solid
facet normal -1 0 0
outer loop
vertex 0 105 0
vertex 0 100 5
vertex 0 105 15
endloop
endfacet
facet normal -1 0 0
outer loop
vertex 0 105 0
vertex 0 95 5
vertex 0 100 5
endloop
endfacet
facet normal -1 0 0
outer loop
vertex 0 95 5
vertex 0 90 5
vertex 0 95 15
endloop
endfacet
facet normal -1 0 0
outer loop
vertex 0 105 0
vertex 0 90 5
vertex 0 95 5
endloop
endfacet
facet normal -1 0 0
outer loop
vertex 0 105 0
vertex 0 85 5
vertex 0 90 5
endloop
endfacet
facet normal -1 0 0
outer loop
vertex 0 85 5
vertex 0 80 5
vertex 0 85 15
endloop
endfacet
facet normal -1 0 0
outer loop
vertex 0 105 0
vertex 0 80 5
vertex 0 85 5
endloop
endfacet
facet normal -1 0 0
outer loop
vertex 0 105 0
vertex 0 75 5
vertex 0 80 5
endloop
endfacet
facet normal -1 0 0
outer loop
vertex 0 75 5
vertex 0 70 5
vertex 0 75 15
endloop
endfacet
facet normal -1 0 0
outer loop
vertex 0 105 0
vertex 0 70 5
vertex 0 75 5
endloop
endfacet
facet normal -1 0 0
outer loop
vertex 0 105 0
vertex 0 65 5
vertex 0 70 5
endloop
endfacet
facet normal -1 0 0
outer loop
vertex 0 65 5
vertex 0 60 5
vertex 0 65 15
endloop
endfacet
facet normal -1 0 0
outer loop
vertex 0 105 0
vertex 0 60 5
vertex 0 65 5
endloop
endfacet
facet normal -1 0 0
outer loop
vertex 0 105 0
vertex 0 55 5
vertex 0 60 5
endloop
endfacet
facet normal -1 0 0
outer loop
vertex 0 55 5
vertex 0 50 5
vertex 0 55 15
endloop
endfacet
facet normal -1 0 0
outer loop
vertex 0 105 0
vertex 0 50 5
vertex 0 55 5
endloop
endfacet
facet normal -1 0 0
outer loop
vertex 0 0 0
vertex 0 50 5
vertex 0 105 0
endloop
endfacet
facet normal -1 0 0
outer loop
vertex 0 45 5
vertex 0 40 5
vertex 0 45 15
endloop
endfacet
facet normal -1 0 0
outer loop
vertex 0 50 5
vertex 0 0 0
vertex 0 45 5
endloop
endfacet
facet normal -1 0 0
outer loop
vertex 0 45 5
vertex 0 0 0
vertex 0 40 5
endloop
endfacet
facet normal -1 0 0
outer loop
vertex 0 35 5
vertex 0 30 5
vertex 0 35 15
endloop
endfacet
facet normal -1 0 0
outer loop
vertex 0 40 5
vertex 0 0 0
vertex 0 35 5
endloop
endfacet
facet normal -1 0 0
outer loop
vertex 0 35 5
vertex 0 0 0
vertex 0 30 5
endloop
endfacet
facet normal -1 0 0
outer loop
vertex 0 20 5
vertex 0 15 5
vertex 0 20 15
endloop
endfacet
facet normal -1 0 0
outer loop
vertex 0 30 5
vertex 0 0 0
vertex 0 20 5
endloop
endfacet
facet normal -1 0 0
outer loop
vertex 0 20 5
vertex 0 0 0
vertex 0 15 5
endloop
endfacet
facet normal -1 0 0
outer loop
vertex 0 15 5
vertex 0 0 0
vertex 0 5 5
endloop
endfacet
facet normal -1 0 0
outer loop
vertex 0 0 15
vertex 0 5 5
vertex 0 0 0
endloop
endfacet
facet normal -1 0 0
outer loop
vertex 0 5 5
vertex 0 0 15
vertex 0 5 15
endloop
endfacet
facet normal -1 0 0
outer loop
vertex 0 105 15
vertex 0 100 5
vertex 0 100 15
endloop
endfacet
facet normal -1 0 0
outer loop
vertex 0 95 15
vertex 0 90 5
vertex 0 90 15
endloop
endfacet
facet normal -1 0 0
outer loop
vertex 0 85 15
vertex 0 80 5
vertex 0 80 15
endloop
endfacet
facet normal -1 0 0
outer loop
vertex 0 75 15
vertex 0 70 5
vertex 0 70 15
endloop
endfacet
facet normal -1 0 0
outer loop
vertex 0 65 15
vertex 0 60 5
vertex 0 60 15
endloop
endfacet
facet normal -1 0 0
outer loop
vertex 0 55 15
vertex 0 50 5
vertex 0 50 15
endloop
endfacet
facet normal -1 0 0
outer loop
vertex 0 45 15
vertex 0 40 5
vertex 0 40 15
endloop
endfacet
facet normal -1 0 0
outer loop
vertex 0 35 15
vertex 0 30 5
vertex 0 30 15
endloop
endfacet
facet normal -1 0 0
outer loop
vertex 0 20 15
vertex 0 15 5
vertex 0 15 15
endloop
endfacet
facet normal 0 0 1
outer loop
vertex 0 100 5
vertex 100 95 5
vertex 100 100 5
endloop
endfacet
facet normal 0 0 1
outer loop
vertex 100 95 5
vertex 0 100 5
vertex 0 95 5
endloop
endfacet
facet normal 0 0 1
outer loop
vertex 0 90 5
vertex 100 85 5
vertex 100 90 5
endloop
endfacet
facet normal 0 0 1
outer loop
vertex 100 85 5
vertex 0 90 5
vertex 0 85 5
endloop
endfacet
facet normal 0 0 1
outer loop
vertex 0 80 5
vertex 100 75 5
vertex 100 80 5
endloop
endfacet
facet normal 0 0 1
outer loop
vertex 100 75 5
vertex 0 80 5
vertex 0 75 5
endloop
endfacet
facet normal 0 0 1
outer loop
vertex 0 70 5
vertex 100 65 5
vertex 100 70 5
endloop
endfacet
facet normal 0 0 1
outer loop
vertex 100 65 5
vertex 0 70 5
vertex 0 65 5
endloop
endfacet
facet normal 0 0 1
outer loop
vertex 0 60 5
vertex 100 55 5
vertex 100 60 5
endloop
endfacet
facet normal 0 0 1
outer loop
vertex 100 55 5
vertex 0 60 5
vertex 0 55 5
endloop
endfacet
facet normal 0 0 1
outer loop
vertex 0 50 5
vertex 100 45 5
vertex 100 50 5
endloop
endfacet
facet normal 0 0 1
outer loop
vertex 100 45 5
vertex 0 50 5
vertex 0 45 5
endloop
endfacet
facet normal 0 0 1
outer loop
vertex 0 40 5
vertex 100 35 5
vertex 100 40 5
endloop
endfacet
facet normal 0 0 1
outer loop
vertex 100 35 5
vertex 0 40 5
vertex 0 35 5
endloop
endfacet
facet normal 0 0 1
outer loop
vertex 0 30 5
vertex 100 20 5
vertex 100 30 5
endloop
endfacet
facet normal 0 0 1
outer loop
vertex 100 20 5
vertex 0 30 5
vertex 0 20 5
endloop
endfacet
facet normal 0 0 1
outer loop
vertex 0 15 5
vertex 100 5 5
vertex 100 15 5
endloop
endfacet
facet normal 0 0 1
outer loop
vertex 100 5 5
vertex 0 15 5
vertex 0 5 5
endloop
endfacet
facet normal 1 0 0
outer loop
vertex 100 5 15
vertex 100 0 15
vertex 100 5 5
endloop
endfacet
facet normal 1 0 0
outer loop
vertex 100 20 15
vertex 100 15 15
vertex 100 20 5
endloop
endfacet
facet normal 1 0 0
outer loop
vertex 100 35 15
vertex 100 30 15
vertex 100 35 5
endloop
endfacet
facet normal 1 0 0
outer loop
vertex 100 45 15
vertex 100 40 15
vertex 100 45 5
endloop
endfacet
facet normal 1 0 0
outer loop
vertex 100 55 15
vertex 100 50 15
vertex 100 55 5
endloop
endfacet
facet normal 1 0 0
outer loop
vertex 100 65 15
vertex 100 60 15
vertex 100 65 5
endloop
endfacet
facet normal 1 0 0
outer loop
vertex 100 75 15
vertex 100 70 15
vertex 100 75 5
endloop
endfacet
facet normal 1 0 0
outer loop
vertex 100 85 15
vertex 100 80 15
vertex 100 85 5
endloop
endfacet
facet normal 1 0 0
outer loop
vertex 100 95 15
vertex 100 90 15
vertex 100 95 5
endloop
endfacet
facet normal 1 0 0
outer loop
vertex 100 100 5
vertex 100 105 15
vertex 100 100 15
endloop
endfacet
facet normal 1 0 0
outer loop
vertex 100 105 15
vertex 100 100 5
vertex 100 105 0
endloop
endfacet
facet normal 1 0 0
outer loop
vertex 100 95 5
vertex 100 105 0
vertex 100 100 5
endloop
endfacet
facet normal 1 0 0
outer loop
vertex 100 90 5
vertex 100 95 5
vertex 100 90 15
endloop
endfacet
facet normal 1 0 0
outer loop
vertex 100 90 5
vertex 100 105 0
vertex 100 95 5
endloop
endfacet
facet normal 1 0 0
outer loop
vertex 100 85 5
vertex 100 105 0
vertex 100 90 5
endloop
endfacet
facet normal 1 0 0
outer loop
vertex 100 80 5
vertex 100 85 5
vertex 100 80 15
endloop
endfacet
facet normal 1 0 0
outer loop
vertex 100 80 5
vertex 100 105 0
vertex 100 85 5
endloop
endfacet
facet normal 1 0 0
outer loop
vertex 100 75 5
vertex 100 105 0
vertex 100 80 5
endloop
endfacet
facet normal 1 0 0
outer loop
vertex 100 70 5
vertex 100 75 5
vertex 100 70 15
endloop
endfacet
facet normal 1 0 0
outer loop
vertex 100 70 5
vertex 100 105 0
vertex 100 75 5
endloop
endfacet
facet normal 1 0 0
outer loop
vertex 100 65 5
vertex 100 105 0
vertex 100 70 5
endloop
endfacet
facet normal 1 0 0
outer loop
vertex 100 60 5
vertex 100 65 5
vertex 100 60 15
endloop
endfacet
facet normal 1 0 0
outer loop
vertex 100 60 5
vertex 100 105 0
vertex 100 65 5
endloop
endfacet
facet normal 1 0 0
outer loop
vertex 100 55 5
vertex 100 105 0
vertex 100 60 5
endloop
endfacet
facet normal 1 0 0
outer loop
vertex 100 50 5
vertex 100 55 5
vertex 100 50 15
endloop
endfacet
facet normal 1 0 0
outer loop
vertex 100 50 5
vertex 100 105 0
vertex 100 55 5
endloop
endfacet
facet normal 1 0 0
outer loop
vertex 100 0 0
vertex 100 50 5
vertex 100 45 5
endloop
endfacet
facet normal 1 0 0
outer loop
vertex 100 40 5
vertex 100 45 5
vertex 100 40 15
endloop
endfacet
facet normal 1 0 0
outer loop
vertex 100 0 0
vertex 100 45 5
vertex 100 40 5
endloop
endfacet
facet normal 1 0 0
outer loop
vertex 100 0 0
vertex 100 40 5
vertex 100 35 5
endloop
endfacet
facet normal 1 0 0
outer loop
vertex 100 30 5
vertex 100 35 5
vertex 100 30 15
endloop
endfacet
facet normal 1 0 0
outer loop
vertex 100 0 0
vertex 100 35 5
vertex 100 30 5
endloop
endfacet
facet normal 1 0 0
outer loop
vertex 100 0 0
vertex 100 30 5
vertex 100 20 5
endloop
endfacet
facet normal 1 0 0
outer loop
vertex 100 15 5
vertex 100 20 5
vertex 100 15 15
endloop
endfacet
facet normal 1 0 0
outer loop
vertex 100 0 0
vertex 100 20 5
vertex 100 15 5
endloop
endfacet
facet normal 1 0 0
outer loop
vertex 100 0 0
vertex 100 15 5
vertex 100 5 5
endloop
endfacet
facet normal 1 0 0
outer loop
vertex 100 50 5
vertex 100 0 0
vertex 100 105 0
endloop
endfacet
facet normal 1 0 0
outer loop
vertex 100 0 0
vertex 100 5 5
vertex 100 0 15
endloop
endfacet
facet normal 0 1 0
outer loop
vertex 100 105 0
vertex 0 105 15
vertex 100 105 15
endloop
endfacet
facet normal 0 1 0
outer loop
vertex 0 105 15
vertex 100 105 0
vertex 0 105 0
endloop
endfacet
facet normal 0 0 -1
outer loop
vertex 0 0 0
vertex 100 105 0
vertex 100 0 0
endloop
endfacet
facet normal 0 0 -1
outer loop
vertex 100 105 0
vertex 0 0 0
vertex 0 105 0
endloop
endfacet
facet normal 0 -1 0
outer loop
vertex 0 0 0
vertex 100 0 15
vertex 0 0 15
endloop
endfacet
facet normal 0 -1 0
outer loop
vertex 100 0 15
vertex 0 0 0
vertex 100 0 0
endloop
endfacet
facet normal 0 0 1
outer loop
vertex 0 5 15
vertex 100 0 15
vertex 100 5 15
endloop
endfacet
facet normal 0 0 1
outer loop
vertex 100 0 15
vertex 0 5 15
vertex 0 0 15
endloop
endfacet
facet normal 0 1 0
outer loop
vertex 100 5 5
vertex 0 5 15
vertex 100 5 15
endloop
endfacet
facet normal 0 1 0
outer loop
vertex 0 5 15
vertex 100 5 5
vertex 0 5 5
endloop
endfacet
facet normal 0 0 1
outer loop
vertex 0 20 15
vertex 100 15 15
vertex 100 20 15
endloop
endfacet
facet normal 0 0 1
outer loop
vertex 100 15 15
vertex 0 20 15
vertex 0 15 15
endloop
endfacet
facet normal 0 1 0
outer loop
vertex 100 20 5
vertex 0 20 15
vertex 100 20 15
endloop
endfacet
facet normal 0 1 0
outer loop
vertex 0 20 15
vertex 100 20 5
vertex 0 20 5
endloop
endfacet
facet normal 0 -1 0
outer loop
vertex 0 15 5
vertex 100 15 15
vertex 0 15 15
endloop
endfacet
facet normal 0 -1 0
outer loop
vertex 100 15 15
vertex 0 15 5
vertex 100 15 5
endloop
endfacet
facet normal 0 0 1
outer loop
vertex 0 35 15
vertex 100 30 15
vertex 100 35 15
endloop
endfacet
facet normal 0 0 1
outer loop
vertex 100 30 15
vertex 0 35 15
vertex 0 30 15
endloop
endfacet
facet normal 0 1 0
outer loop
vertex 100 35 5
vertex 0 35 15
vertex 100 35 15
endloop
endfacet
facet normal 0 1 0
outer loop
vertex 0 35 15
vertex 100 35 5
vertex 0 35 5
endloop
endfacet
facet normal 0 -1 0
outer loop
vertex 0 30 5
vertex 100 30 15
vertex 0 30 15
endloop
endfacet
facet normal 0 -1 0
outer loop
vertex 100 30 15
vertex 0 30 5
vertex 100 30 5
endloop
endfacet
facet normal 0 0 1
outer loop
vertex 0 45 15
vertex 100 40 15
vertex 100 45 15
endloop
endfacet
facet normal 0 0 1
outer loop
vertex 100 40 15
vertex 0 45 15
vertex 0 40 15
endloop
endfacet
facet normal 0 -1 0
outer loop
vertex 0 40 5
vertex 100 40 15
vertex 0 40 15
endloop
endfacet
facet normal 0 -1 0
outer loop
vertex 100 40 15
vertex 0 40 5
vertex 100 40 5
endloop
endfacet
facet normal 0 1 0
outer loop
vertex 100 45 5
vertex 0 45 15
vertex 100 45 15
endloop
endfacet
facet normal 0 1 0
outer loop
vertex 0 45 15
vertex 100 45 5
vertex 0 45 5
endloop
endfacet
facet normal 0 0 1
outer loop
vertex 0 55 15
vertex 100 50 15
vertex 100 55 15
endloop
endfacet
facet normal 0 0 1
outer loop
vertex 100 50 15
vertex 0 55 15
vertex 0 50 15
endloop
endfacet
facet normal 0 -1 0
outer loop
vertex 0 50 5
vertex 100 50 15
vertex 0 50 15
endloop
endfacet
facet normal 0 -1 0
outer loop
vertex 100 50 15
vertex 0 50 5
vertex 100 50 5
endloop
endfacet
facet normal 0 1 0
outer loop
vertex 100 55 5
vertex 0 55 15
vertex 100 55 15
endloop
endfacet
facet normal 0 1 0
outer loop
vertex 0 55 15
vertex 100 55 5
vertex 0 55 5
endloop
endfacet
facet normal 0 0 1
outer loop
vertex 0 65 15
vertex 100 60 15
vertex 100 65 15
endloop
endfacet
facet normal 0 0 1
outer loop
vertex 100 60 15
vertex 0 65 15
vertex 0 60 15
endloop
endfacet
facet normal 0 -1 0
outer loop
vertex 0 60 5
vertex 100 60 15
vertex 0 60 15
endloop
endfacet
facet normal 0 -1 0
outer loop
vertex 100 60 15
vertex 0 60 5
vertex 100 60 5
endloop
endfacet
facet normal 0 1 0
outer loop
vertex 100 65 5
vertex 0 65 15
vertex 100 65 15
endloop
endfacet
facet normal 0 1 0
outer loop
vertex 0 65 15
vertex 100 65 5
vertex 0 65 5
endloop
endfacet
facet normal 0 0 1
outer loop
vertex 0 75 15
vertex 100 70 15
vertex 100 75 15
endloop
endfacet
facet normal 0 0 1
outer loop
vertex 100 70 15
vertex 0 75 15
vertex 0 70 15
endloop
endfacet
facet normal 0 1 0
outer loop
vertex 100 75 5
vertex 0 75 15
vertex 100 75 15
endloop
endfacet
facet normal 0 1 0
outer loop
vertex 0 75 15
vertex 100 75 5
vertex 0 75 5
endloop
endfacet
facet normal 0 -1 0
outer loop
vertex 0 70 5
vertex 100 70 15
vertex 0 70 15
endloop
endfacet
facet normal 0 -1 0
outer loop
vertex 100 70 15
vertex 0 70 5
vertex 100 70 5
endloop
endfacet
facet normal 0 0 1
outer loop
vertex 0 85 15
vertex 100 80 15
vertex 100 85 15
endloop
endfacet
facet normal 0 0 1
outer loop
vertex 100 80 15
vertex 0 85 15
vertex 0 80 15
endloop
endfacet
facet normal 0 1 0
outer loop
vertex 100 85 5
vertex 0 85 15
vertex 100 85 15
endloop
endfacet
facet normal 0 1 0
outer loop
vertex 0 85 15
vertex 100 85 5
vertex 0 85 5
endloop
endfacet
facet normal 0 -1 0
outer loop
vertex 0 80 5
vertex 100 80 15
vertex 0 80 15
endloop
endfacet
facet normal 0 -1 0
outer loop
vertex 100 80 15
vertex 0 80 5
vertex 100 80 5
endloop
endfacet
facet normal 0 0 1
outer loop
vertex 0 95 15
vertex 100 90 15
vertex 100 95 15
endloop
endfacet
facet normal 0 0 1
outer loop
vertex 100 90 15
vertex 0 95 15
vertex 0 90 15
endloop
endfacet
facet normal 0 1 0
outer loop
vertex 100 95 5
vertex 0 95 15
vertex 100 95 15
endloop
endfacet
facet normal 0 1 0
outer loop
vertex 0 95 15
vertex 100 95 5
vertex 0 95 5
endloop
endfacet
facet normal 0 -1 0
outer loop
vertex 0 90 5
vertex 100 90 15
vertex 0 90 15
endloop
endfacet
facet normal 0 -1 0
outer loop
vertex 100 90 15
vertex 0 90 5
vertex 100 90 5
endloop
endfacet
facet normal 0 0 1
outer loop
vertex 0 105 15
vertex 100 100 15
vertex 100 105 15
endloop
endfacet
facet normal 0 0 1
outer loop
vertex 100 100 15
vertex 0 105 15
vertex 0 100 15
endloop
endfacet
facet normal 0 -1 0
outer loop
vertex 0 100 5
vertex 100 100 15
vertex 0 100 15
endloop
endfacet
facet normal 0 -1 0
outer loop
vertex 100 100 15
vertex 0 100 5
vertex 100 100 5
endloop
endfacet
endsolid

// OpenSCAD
cube([100,105,5]);
translate([0,0,5]) cube([100,5,10]);
translate([0,15,5]) cube([100,5,10]);
translate([0,30,5]) cube([100,5,10]);
translate([0,40,5]) cube([100,5,10]);
translate([0,50,5]) cube([100,5,10]);
translate([0,60,5]) cube([100,5,10]);
translate([0,70,5]) cube([100,5,10]);
translate([0,80,5]) cube([100,5,10]);
translate([0,90,5]) cube([100,5,10]);
translate([0,100,5]) cube([100,5,10]);
